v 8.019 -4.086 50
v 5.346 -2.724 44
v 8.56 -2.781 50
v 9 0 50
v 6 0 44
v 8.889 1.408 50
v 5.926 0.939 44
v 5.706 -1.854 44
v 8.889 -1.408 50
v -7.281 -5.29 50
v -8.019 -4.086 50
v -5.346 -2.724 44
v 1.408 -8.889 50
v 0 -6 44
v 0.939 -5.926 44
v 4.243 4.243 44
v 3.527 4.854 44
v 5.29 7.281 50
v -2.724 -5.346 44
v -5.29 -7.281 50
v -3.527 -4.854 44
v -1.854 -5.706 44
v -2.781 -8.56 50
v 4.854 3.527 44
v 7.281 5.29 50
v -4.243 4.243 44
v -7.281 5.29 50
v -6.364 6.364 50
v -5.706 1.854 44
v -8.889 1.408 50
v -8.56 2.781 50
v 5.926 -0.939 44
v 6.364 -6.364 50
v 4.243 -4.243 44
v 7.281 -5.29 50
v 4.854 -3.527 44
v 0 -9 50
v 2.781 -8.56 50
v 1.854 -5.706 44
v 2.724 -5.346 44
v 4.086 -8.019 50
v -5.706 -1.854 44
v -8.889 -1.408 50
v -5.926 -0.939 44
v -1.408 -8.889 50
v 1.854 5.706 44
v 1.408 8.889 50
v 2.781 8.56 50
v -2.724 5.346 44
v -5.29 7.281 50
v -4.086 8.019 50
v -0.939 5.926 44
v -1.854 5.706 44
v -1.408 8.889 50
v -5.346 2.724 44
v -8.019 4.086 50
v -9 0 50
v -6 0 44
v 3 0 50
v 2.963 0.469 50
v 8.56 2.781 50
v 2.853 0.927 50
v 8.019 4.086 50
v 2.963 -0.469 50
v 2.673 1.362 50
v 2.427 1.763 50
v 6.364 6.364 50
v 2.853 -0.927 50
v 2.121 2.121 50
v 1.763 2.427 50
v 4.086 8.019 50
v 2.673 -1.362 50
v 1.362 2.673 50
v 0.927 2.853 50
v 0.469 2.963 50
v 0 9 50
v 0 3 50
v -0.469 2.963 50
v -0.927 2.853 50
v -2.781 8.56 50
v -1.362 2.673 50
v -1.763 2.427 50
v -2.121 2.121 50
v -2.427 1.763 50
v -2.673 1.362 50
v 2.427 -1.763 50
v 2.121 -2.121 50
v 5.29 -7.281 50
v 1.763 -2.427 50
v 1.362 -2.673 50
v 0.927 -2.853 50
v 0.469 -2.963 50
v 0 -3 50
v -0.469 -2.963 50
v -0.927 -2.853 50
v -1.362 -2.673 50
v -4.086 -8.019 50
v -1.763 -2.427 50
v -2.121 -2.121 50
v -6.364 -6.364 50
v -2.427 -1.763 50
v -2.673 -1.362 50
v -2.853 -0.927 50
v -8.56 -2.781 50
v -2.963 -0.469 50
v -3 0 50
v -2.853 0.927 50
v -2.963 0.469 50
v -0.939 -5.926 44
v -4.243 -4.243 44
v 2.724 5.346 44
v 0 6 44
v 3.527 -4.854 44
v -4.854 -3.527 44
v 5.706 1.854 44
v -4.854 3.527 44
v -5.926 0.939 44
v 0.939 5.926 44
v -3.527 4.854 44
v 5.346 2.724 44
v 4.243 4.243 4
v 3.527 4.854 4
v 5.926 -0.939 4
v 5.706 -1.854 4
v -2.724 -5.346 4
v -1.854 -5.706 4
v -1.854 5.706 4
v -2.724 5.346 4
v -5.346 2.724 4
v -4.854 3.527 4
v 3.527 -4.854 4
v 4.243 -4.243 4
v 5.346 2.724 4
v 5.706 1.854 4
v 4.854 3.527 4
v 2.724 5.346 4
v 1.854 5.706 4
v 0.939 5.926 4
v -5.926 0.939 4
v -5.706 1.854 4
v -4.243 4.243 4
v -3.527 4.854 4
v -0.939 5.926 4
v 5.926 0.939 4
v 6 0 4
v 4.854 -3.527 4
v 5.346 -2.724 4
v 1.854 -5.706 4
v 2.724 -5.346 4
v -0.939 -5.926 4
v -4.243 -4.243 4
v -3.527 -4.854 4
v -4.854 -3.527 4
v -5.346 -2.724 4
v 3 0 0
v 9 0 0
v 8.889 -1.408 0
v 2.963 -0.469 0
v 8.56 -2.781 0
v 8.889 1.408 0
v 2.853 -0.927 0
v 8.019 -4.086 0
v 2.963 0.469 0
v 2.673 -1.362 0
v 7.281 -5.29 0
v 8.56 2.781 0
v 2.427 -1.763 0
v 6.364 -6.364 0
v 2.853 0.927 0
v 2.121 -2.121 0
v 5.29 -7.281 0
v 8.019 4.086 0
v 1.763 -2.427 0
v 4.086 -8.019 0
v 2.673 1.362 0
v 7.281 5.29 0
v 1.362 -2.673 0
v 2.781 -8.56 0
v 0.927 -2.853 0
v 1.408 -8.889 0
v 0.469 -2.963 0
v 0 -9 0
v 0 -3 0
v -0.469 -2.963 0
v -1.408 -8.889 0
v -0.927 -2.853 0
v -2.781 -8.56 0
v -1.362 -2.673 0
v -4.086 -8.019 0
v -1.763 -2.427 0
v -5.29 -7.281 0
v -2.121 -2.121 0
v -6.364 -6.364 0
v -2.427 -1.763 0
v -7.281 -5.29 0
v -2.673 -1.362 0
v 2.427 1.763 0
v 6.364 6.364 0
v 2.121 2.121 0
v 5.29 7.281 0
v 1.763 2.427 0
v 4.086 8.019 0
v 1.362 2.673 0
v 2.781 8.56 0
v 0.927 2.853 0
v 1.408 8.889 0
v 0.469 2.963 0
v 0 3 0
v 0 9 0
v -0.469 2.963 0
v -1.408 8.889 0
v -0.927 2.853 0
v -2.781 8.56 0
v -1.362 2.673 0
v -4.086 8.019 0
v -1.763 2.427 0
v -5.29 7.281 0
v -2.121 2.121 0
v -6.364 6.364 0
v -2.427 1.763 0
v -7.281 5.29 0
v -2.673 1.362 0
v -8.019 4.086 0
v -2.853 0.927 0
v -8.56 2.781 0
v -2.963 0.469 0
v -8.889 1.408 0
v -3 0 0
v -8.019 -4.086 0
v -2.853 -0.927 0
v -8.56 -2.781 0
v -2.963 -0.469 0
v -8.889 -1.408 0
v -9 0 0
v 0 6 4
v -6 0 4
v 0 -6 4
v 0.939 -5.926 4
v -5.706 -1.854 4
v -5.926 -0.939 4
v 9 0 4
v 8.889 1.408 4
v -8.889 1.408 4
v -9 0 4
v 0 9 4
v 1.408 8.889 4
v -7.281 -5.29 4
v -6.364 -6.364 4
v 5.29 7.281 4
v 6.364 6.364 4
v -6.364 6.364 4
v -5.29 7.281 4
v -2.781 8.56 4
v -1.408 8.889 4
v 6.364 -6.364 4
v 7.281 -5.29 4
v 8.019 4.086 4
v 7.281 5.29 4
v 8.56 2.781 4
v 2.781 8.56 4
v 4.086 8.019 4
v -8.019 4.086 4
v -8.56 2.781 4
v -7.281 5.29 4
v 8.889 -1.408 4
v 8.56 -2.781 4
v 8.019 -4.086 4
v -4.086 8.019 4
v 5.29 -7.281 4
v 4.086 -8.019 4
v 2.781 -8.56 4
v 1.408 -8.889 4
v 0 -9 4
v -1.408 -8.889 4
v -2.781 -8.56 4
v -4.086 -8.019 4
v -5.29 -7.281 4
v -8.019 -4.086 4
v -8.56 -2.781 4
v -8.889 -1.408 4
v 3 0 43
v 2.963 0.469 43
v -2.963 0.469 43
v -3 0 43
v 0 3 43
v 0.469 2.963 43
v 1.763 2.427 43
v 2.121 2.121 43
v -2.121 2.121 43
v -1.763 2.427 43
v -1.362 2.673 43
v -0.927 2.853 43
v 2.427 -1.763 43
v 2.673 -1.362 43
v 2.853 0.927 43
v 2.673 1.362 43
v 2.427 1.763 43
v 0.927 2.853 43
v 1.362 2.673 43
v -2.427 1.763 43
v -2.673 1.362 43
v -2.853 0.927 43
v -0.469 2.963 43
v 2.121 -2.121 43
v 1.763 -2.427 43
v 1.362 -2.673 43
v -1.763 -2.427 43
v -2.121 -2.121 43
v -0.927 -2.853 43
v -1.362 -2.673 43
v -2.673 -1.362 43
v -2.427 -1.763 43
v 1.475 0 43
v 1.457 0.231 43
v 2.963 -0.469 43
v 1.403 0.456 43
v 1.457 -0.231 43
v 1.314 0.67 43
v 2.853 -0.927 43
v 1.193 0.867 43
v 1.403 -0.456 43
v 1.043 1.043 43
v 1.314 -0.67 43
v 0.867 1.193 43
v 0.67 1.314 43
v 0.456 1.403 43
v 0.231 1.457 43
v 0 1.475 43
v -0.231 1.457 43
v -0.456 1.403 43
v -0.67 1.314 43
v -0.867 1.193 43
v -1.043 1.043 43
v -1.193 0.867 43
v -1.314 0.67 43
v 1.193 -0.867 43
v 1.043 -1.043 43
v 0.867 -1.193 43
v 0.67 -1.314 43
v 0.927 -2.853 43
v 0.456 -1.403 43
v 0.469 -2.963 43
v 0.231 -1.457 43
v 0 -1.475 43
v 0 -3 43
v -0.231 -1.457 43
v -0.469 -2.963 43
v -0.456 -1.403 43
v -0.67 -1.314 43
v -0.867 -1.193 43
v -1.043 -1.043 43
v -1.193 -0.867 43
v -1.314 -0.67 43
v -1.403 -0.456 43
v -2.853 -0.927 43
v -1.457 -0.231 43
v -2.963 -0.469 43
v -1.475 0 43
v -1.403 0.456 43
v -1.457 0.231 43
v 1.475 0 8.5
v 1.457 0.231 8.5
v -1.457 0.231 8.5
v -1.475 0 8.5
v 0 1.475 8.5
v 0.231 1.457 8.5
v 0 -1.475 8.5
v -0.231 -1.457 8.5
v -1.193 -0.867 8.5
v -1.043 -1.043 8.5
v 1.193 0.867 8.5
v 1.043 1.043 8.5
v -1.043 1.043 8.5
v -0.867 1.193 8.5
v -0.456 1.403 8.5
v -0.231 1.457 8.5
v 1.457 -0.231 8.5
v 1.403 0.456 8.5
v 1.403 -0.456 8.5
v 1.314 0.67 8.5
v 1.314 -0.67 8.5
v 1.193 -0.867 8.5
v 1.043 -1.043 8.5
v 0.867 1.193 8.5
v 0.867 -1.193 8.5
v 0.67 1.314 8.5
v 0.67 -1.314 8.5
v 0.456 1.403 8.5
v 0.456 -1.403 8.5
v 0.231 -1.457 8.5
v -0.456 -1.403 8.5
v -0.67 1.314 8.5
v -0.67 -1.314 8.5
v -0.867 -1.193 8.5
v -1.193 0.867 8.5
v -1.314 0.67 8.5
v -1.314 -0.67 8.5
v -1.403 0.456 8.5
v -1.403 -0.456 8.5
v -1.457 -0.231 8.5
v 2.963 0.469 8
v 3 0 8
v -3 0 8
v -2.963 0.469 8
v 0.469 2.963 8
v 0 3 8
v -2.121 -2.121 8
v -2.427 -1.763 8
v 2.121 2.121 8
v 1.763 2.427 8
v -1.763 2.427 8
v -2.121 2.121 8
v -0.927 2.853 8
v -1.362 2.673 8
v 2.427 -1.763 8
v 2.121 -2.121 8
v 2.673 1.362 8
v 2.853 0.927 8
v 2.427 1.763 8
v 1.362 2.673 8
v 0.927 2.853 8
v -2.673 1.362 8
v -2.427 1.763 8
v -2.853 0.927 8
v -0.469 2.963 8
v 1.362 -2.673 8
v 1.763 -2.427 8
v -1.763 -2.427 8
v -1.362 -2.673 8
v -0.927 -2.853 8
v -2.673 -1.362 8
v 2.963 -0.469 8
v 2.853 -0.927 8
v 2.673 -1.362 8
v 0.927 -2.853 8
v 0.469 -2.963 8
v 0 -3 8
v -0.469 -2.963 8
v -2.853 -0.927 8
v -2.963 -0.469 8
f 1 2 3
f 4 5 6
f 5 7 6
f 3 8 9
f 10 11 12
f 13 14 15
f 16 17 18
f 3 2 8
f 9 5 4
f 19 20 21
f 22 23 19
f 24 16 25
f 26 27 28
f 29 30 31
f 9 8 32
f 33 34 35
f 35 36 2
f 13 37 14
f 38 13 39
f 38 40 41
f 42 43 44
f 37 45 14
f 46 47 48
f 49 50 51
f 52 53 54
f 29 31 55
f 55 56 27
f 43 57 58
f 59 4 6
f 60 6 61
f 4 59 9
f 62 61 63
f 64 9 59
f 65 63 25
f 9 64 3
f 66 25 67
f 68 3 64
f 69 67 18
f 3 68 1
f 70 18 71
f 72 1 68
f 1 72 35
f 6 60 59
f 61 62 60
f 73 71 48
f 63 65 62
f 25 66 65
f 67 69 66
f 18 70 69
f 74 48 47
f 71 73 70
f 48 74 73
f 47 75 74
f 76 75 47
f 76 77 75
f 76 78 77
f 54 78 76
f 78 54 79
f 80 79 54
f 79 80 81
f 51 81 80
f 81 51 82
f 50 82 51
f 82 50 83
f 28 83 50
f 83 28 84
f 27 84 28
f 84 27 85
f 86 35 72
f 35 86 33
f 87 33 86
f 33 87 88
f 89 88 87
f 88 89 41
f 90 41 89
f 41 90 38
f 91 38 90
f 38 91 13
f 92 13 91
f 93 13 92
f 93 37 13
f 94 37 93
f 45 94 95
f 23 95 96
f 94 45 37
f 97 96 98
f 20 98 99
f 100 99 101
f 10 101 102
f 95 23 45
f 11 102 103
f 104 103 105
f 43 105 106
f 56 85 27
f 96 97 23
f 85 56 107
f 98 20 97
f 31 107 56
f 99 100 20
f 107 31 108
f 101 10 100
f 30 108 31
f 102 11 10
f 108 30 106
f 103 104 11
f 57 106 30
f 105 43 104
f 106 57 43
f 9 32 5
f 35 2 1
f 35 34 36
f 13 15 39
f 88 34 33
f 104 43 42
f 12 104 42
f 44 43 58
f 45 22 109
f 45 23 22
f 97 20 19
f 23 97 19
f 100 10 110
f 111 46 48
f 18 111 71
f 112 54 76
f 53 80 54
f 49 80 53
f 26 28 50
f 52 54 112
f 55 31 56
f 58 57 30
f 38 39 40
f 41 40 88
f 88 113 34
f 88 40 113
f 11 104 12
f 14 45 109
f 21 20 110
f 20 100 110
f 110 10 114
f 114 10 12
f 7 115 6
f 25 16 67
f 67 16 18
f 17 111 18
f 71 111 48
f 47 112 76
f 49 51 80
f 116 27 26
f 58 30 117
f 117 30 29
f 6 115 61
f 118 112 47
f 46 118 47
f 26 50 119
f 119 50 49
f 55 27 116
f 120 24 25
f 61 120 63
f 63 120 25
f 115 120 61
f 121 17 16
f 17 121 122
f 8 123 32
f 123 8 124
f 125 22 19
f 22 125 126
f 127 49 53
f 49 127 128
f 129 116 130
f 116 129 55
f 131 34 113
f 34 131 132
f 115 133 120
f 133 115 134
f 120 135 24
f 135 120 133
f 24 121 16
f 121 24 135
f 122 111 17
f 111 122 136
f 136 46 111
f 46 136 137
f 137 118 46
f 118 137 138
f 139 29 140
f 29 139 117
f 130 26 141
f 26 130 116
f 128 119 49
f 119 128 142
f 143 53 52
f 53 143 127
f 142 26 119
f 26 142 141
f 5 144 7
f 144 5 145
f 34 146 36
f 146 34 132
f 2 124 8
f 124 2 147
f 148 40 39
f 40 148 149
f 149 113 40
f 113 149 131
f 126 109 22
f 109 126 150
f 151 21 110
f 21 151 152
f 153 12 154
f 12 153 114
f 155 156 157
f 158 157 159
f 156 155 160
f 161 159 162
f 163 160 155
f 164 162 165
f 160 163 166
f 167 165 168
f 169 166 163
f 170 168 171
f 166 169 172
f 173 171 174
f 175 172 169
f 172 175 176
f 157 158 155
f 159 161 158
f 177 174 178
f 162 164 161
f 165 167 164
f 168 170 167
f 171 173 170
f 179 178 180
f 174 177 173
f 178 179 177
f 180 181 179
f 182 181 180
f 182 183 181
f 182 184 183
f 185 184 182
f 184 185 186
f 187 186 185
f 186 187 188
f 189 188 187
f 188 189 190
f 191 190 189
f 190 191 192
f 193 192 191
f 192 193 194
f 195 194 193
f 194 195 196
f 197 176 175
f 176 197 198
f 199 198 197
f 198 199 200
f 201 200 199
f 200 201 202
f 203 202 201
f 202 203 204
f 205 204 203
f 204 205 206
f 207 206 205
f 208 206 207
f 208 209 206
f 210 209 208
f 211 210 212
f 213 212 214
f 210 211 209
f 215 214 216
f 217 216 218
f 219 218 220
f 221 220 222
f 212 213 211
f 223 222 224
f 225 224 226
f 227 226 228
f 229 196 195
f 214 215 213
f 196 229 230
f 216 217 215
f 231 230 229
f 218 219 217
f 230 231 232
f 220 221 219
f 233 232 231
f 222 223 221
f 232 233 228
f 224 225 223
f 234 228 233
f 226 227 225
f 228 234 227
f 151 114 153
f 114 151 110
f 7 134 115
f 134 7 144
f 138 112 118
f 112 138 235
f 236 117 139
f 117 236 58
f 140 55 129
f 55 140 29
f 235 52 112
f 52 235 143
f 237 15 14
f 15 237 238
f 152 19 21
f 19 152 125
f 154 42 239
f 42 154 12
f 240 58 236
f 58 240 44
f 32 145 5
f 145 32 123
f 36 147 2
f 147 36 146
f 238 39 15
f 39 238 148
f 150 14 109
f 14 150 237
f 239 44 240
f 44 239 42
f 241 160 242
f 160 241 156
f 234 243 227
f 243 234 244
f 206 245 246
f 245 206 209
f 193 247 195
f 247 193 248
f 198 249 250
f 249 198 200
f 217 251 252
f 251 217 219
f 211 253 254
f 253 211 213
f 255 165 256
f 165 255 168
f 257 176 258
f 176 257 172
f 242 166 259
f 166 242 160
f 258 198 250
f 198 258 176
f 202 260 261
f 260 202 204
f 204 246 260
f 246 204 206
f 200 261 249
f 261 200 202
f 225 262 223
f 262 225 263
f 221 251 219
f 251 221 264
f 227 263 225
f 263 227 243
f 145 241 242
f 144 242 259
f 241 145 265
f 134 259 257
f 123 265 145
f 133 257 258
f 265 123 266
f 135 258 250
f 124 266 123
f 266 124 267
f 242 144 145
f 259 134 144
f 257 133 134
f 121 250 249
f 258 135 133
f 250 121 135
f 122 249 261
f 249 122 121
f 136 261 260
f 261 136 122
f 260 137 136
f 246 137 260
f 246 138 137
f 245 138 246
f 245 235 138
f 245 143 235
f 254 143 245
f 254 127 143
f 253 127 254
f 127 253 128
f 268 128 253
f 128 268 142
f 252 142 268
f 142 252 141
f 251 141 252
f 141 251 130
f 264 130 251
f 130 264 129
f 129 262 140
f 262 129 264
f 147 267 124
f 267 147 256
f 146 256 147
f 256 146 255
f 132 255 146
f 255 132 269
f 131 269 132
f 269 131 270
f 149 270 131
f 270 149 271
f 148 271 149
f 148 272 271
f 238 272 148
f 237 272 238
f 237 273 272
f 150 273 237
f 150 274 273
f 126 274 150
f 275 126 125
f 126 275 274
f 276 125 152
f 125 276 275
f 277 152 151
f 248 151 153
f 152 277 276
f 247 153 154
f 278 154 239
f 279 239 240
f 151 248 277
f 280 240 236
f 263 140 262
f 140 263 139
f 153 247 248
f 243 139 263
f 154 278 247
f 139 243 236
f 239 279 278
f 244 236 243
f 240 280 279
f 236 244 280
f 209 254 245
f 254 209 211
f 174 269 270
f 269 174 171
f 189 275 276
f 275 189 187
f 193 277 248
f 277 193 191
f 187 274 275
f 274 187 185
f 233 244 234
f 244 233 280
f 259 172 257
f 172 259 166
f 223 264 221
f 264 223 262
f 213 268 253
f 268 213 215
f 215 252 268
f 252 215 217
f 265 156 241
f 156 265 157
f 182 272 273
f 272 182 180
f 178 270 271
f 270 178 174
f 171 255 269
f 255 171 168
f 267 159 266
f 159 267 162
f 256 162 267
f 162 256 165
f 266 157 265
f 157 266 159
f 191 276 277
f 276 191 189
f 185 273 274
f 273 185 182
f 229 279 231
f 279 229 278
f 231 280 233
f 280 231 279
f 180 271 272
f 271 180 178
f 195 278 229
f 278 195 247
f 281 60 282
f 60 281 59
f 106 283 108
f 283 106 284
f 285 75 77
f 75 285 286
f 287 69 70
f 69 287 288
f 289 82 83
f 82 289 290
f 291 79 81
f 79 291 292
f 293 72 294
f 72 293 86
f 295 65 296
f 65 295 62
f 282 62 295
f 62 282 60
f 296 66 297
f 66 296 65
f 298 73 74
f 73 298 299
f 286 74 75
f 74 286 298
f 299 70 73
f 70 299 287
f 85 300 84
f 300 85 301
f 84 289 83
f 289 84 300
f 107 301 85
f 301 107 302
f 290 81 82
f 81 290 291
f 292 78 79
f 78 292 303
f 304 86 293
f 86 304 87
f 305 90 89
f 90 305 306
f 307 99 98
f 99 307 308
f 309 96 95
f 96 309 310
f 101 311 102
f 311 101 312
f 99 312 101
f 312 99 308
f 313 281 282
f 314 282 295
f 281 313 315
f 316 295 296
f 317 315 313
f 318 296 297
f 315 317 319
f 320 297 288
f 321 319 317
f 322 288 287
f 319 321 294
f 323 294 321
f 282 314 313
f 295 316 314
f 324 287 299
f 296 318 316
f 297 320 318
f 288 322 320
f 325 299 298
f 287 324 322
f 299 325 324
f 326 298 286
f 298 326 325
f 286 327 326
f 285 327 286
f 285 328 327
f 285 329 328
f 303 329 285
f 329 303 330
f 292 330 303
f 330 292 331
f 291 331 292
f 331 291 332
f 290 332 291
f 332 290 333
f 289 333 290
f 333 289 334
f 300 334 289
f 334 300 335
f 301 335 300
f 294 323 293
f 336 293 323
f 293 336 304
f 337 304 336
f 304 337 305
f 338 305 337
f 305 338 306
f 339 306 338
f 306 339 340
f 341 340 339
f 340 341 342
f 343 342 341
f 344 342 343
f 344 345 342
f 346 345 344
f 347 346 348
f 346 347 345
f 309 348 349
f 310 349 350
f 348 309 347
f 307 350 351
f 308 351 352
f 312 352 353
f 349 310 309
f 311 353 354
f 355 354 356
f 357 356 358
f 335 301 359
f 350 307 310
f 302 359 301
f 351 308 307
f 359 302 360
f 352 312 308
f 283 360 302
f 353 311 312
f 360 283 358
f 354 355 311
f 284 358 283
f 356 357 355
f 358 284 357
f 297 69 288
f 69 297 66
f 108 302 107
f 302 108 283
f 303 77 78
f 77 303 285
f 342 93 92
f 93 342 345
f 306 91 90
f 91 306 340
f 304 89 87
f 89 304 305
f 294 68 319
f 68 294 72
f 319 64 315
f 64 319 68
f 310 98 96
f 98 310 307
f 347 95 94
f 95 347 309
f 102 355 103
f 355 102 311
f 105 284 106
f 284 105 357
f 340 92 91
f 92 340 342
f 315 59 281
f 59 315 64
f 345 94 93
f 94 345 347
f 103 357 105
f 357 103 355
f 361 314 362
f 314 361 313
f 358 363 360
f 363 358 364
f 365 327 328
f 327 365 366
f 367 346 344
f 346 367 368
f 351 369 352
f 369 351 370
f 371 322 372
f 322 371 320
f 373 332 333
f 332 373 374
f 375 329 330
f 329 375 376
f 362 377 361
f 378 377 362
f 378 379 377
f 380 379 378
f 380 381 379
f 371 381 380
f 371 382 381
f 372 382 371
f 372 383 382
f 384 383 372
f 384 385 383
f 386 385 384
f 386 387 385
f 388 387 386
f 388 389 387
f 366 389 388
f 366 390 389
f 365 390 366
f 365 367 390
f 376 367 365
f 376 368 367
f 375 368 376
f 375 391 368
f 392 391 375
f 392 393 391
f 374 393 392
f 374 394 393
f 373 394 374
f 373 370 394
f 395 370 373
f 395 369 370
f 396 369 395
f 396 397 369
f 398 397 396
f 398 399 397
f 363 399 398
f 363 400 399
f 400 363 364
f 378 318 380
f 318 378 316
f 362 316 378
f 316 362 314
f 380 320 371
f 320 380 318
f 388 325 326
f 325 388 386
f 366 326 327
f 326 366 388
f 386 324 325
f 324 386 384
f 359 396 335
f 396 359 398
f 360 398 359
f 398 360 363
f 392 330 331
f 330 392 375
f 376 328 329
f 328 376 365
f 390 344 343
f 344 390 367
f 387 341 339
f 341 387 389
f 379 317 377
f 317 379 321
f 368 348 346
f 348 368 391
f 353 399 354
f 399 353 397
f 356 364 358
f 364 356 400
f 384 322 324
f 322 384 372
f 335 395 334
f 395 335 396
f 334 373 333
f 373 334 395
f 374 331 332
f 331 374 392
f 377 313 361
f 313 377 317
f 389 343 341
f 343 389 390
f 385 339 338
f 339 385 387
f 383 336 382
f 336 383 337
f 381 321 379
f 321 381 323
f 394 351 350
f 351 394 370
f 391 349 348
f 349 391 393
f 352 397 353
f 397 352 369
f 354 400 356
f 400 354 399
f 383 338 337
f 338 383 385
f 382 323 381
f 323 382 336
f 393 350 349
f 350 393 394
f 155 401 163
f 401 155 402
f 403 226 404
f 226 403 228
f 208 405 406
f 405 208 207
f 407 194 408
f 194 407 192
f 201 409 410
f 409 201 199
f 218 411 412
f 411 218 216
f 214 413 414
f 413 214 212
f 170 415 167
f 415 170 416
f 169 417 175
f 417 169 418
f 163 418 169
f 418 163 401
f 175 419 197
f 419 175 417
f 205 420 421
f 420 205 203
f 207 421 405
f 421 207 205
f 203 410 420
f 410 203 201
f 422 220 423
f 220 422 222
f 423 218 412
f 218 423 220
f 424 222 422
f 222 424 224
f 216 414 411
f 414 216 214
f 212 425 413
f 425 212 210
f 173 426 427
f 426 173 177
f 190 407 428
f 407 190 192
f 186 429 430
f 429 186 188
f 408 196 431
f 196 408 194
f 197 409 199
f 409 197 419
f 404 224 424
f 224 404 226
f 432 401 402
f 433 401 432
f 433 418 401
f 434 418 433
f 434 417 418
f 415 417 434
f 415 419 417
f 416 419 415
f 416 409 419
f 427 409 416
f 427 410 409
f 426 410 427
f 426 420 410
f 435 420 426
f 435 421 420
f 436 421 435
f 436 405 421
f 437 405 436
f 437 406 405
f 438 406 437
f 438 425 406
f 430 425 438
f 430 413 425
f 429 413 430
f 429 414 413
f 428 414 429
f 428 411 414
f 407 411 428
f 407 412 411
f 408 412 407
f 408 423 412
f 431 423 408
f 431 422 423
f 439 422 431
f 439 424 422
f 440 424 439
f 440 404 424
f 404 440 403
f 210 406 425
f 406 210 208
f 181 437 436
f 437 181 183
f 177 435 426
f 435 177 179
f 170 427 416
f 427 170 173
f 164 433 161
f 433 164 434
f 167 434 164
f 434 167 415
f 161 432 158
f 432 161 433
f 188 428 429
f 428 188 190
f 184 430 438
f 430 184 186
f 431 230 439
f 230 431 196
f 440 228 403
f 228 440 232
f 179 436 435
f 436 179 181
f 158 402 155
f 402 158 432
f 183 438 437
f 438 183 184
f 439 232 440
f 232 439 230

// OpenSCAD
hl = 50;
smooth = 40;
dia = 12;
diaB = 18;

difference()
{

union() {
  color("yellow")
  translate([0,0,hl-6])
  cylinder(6,d1=dia,d2=diaB,$fn=smooth);

  color("blue")
  cylinder(hl,d=dia,$fn=smooth);
    
  color("green")
  cylinder(4,d=diaB,$fn=smooth);
}

union() {
  color("pink")
  translate([0,0,hl-7])
  cylinder(7+2,d=6,$fn=smooth);

  color("red")
  translate([0,0,7+1.5])
  cylinder(hl,d=2.95,$fn=smooth);

  color("pink")
  translate([0,0,-1])
  cylinder(7+2,d=6,$fn=smooth);
}

}
